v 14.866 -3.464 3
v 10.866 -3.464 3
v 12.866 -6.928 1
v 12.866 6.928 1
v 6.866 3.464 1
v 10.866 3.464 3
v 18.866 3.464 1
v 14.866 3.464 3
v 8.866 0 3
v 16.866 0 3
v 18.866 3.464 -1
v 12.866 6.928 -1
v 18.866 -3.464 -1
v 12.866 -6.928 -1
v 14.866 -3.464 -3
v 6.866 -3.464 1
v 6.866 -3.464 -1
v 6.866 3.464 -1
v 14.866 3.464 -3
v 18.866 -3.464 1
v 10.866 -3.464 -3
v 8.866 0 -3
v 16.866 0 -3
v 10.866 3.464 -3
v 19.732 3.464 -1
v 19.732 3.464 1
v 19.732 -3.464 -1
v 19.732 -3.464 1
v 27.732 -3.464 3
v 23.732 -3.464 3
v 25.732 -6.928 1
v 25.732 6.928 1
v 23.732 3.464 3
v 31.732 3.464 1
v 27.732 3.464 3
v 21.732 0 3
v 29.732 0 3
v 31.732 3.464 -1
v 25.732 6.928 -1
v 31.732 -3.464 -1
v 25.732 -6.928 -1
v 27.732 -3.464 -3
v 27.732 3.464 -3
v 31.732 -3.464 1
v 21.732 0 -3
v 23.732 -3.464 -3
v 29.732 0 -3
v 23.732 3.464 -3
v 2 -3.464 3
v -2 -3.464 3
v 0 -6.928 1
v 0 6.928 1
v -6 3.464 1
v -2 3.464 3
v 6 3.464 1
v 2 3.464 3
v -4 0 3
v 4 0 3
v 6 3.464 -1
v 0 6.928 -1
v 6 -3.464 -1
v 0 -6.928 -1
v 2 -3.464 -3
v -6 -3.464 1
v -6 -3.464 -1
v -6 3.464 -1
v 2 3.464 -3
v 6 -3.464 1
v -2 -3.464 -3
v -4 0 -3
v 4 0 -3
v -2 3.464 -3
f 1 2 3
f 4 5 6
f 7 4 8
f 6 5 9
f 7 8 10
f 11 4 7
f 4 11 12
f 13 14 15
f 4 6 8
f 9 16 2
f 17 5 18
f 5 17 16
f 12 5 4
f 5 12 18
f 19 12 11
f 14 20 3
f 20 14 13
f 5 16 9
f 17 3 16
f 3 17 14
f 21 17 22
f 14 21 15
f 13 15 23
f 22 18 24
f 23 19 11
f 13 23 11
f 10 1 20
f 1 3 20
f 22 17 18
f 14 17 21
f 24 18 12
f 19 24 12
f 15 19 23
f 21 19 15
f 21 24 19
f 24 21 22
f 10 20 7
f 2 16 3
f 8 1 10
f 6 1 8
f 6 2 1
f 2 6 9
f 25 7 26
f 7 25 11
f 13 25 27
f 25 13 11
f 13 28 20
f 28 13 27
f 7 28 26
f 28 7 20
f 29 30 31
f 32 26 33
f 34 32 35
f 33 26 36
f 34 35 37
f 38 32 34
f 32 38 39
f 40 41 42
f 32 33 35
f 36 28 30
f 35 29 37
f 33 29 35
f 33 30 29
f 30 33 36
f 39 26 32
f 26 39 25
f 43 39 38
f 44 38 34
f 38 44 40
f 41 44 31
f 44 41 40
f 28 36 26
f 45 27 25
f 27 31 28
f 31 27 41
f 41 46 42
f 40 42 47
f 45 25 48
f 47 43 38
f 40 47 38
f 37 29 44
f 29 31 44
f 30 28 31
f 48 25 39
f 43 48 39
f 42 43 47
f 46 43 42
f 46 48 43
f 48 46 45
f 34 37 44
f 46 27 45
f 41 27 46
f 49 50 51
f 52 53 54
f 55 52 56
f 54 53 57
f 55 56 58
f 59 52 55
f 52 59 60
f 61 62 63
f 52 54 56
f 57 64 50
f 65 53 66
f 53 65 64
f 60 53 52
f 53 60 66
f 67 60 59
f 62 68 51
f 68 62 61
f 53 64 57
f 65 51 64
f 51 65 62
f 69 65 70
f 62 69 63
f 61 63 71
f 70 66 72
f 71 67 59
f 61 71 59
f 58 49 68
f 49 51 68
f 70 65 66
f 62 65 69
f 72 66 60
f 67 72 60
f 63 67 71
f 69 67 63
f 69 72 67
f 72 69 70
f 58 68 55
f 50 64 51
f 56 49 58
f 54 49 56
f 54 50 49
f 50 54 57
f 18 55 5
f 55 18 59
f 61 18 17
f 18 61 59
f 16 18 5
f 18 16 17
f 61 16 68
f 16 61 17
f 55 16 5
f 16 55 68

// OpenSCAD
// file: gem-common.scad
angles = [for(i = [0:5]) i * (360 / 6)];

inner_poly_radius=8 * cos(60);
outer_poly_radius=8 * cos(30);
outer_poly_z=1;
inner_poly_z=3;


gap_between_gems = cos(30);
distance_to_corner = cos(30) * outer_poly_radius * 2 + gap_between_gems;


module edge_connector(angle = 0) {
    function make_point_2d(r, angle, height) = [r * sin(angle), height];
    
    points = [
        make_point_2d(outer_poly_radius, 30, outer_poly_z),
        make_point_2d(outer_poly_radius, -30, outer_poly_z),
        make_point_2d(outer_poly_radius, -30, -outer_poly_z),
        make_point_2d(outer_poly_radius, 30, -outer_poly_z),
    ];
    
    rotate([0,0,angle]) {
        translate([(distance_to_corner - gap_between_gems) / 2,0,0]){
            rotate([90, 0, 90]) {
                linear_extrude(gap_between_gems) {
                    polygon(points);
                }
            }
        }
    }
}

module move(distance, angle) {
    translate([distance * cos(angle), distance * sin(angle), 0]) {
        children();
    }
}


module corner_connector(angle=0) {
    r = 0.5;
    rotate_angle = angle + 30;
    move(outer_poly_radius + r, rotate_angle) {
        translate([0,0, -outer_poly_z]) {
            rotate([0,0,-rotate_angle]) {
                cylinder($fn=3, r=r, h=outer_poly_z * 2);
            }
        }
    }
}

module gem() {
    function make_point(r, angle, height) = [r * cos(angle), r * sin(angle), height];
    
    top_poly = [for(th = angles) make_point(inner_poly_radius, th, inner_poly_z)];
    top_outer_poly = [for(th = angles) make_point(outer_poly_radius, th + 30, outer_poly_z)];
    bottom_outer_poly = [for(th = angles) make_point(outer_poly_radius, th + 30, -outer_poly_z)];
    bottom_poly = [for(th = angles) make_point(inner_poly_radius, th, -inner_poly_z)];
 
    function rot(n, base) = (n + 1 - base) % 6 + base;
    
    faces = [
        [5, 4, 3, 2, 1, 0],
        for(i = [0:5]) [i, (i + 1) % 6, i + 6],
        for(i = [6:11]) [i, (i - 5) % 6, rot(i, 6)],
        for(i = [6:11]) [i, rot(i, 6), rot(i, 6) + 6, i + 6],
        for(i = [12:17]) [i, rot(i, 12), rot(i, 12) + 6],
        for(i = [18:23]) [i, i-6, rot(i, 18)],
        [18, 19, 20, 21, 22, 23],
    ];
    
    polyhedron(
        concat(
            top_poly,
            top_outer_poly,
            bottom_outer_poly,
            bottom_poly
        ),
        faces
    );
}
// main file
include <./gem-common.scad>

gem();
edge_connector();
move(distance_to_corner, 0) {
    gem();
    edge_connector();
    move(distance_to_corner, 0) {
        gem();   
    }
}
